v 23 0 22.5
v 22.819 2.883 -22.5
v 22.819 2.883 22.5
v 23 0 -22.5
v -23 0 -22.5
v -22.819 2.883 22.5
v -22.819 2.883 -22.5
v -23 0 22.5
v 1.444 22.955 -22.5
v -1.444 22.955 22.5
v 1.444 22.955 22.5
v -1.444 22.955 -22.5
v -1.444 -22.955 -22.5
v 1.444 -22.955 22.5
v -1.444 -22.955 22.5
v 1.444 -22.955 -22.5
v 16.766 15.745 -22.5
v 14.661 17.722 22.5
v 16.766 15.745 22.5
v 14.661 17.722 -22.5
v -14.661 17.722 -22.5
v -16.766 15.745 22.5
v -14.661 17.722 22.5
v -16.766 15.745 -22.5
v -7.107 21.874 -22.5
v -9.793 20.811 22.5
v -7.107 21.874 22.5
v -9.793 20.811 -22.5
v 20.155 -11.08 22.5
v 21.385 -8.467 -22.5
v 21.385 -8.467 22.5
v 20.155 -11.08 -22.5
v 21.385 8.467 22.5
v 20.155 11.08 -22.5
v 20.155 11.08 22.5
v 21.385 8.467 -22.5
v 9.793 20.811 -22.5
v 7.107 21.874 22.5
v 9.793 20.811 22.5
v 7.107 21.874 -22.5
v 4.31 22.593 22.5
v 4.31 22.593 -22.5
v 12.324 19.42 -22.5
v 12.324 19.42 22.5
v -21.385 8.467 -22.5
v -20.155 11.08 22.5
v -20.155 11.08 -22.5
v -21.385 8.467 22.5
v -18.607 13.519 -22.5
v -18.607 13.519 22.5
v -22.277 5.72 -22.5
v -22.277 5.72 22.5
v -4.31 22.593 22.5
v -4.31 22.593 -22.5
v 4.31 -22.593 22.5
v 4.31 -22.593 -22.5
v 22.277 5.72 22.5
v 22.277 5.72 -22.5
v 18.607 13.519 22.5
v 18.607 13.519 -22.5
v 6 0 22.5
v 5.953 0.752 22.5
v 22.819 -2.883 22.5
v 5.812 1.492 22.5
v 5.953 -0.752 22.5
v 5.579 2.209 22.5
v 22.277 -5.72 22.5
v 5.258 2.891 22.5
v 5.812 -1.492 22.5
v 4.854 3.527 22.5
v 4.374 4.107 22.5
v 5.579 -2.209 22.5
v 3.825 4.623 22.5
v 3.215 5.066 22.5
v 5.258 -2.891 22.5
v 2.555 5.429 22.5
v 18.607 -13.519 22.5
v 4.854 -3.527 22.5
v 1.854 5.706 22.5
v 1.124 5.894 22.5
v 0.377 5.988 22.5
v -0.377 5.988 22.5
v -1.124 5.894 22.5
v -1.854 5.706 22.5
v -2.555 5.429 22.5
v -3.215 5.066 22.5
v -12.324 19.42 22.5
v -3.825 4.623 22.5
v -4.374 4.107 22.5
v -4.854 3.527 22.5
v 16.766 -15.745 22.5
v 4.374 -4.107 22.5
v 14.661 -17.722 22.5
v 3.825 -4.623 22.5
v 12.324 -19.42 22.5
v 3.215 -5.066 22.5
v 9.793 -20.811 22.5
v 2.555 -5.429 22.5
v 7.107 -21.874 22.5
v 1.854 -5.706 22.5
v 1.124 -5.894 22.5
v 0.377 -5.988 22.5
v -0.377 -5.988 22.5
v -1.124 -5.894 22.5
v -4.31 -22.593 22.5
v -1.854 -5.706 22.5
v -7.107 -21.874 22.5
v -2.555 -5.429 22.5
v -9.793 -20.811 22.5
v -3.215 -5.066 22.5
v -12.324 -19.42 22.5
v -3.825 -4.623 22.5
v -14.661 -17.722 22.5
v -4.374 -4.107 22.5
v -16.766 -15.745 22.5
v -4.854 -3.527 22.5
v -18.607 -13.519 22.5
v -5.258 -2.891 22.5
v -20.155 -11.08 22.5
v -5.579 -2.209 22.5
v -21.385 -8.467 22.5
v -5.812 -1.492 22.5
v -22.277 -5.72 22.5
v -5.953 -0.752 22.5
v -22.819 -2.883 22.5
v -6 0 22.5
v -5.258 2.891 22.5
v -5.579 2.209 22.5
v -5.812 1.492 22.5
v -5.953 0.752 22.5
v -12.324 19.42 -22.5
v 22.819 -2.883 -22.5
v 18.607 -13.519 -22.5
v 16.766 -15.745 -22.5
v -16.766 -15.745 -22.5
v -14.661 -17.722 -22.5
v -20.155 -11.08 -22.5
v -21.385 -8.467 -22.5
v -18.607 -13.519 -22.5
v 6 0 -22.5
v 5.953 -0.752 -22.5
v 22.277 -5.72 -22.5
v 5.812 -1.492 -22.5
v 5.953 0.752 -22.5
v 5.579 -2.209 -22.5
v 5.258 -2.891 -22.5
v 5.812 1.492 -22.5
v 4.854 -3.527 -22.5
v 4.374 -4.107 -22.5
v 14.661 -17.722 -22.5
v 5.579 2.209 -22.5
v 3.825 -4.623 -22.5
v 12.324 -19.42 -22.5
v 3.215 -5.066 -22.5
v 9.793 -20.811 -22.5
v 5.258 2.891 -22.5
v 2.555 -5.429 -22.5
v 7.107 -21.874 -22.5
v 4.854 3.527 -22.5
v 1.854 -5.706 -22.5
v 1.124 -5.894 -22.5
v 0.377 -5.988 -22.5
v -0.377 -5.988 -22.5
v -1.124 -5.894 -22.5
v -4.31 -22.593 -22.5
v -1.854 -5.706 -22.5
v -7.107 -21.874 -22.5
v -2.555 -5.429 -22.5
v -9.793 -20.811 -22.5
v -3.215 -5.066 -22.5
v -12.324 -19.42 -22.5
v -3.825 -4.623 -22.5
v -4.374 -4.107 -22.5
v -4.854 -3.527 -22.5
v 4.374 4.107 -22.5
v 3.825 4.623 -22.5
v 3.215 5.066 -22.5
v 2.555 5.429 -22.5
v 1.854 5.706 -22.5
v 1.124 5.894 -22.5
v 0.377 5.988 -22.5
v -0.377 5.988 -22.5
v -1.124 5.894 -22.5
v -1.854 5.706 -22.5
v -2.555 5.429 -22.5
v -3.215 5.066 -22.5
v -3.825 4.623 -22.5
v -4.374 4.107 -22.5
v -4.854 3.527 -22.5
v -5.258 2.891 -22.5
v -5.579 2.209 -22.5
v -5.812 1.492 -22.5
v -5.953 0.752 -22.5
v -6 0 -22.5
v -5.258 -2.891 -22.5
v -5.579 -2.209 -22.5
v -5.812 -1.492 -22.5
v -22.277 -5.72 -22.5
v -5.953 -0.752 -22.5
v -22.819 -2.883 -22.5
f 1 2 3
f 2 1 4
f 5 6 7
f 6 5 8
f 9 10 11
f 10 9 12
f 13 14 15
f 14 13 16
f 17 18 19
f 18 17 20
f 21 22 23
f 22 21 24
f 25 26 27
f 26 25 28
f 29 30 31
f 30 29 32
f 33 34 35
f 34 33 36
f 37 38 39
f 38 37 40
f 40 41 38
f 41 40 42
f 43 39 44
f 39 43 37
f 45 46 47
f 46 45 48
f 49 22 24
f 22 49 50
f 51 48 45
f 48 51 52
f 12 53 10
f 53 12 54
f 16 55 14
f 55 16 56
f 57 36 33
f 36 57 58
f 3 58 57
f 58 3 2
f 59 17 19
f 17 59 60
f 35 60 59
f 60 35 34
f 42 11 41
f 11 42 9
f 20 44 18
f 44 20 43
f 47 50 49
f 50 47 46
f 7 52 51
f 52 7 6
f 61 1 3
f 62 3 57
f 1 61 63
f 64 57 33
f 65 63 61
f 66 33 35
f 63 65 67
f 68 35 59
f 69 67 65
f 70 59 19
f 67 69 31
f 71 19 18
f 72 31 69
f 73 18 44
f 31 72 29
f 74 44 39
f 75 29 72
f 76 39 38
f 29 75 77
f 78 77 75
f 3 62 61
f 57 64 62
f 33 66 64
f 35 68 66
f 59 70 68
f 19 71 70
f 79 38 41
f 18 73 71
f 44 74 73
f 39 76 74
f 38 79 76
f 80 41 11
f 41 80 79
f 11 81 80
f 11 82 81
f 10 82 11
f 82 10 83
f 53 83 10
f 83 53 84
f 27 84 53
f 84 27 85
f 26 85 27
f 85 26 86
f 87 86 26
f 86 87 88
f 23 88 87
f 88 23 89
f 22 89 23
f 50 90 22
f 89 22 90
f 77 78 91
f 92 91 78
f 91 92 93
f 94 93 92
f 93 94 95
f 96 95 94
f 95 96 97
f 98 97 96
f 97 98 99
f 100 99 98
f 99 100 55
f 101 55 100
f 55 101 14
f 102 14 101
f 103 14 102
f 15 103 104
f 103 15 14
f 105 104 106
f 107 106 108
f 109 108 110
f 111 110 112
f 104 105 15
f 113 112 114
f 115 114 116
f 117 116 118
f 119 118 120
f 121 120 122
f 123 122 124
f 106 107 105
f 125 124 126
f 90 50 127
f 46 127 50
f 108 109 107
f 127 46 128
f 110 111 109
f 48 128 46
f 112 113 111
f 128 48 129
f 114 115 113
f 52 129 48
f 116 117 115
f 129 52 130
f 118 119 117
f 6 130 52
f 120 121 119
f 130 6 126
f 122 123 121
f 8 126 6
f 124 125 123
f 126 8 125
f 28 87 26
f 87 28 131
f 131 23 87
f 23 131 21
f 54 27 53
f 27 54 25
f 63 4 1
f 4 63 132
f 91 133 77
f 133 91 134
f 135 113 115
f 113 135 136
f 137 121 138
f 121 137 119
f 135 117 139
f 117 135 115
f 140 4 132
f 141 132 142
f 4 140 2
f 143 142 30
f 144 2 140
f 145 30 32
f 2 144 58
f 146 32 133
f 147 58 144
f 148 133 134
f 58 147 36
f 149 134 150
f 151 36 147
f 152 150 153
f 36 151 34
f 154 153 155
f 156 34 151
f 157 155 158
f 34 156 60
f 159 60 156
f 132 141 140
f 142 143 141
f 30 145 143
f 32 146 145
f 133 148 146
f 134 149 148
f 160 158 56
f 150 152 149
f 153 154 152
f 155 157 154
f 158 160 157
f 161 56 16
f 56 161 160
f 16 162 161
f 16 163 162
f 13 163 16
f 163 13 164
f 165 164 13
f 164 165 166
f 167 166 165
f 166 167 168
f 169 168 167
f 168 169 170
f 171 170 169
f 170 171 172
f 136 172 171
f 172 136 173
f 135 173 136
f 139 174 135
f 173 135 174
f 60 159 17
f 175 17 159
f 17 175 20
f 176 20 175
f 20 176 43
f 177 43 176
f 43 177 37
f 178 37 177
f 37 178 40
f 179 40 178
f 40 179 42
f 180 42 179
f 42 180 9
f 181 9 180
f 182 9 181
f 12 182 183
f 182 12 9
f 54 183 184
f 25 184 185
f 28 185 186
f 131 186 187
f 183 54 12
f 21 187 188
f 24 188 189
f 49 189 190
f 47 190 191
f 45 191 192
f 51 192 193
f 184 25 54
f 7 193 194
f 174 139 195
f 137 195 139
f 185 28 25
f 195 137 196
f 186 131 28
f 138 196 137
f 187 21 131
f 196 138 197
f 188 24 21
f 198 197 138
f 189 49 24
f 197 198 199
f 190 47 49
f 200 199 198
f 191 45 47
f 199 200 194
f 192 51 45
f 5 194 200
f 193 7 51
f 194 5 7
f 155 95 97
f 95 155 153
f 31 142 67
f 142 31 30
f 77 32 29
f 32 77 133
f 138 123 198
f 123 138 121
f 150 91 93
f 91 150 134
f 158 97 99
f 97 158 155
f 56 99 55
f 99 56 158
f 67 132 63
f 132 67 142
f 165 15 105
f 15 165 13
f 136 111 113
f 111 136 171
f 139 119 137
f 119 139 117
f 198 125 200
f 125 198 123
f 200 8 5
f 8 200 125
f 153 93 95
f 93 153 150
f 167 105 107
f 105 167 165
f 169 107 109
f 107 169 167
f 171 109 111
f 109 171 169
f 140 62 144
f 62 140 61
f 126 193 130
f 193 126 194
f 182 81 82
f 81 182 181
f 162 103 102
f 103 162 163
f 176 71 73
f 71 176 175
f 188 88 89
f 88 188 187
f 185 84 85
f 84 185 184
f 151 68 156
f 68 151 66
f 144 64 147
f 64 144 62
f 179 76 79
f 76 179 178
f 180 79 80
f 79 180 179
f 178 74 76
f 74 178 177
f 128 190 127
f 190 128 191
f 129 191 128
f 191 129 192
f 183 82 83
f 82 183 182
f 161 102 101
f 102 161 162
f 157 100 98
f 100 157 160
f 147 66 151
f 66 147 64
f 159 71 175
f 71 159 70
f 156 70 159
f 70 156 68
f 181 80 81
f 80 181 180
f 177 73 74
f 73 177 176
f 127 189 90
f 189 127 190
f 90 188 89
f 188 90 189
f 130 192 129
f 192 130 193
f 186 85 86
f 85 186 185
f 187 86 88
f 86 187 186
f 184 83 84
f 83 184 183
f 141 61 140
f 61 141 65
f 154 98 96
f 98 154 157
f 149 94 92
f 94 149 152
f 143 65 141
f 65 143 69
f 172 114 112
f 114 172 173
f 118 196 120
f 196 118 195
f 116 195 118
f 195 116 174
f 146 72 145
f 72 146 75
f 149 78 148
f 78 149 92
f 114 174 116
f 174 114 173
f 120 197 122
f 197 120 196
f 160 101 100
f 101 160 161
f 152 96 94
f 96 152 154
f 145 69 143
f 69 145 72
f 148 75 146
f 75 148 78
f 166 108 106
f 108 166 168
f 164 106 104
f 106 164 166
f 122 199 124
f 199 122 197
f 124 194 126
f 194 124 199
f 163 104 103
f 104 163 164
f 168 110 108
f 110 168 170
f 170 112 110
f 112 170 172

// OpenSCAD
$fn = 50;


difference() {
	union() {
		translate(v = [0, 0, -22.5000000000]) {
			cylinder(h = 45, r = 23.0000000000);
		}
	}
	union() {
		translate(v = [0, 0, -100.0000000000]) {
			cylinder(h = 200, r = 6);
		}
	}
}
